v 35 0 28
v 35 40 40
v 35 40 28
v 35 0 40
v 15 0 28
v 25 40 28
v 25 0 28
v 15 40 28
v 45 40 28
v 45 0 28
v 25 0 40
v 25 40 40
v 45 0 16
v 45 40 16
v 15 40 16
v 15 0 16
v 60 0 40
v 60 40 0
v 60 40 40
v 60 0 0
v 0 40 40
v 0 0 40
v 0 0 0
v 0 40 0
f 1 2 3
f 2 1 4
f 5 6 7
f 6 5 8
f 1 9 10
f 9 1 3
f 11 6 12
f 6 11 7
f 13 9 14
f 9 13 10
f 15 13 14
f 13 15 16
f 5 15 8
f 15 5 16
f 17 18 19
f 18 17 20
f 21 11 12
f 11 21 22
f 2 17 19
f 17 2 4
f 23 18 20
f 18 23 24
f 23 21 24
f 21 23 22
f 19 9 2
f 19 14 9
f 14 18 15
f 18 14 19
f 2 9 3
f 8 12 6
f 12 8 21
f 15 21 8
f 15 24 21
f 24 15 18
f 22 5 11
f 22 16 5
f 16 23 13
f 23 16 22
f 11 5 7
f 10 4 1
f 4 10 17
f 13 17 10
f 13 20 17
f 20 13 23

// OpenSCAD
// T 形槽塊（tslot）— 由 ortho_lib_work/objects.py 產生，請改 objects.py 後重建
// 長方塊 60×40×40，由前到後貫穿一道 T 形槽：槽口寬 10、深 12；下方寬槽寬 30、高 12。
difference() {
  union() {
    translate([0,0,0]) cube([60,40,40]);
  }
  union() {
    translate([25,-1,28]) cube([10,42,13]);
    translate([15,-1,16]) cube([30,42,12]);
  }
}
